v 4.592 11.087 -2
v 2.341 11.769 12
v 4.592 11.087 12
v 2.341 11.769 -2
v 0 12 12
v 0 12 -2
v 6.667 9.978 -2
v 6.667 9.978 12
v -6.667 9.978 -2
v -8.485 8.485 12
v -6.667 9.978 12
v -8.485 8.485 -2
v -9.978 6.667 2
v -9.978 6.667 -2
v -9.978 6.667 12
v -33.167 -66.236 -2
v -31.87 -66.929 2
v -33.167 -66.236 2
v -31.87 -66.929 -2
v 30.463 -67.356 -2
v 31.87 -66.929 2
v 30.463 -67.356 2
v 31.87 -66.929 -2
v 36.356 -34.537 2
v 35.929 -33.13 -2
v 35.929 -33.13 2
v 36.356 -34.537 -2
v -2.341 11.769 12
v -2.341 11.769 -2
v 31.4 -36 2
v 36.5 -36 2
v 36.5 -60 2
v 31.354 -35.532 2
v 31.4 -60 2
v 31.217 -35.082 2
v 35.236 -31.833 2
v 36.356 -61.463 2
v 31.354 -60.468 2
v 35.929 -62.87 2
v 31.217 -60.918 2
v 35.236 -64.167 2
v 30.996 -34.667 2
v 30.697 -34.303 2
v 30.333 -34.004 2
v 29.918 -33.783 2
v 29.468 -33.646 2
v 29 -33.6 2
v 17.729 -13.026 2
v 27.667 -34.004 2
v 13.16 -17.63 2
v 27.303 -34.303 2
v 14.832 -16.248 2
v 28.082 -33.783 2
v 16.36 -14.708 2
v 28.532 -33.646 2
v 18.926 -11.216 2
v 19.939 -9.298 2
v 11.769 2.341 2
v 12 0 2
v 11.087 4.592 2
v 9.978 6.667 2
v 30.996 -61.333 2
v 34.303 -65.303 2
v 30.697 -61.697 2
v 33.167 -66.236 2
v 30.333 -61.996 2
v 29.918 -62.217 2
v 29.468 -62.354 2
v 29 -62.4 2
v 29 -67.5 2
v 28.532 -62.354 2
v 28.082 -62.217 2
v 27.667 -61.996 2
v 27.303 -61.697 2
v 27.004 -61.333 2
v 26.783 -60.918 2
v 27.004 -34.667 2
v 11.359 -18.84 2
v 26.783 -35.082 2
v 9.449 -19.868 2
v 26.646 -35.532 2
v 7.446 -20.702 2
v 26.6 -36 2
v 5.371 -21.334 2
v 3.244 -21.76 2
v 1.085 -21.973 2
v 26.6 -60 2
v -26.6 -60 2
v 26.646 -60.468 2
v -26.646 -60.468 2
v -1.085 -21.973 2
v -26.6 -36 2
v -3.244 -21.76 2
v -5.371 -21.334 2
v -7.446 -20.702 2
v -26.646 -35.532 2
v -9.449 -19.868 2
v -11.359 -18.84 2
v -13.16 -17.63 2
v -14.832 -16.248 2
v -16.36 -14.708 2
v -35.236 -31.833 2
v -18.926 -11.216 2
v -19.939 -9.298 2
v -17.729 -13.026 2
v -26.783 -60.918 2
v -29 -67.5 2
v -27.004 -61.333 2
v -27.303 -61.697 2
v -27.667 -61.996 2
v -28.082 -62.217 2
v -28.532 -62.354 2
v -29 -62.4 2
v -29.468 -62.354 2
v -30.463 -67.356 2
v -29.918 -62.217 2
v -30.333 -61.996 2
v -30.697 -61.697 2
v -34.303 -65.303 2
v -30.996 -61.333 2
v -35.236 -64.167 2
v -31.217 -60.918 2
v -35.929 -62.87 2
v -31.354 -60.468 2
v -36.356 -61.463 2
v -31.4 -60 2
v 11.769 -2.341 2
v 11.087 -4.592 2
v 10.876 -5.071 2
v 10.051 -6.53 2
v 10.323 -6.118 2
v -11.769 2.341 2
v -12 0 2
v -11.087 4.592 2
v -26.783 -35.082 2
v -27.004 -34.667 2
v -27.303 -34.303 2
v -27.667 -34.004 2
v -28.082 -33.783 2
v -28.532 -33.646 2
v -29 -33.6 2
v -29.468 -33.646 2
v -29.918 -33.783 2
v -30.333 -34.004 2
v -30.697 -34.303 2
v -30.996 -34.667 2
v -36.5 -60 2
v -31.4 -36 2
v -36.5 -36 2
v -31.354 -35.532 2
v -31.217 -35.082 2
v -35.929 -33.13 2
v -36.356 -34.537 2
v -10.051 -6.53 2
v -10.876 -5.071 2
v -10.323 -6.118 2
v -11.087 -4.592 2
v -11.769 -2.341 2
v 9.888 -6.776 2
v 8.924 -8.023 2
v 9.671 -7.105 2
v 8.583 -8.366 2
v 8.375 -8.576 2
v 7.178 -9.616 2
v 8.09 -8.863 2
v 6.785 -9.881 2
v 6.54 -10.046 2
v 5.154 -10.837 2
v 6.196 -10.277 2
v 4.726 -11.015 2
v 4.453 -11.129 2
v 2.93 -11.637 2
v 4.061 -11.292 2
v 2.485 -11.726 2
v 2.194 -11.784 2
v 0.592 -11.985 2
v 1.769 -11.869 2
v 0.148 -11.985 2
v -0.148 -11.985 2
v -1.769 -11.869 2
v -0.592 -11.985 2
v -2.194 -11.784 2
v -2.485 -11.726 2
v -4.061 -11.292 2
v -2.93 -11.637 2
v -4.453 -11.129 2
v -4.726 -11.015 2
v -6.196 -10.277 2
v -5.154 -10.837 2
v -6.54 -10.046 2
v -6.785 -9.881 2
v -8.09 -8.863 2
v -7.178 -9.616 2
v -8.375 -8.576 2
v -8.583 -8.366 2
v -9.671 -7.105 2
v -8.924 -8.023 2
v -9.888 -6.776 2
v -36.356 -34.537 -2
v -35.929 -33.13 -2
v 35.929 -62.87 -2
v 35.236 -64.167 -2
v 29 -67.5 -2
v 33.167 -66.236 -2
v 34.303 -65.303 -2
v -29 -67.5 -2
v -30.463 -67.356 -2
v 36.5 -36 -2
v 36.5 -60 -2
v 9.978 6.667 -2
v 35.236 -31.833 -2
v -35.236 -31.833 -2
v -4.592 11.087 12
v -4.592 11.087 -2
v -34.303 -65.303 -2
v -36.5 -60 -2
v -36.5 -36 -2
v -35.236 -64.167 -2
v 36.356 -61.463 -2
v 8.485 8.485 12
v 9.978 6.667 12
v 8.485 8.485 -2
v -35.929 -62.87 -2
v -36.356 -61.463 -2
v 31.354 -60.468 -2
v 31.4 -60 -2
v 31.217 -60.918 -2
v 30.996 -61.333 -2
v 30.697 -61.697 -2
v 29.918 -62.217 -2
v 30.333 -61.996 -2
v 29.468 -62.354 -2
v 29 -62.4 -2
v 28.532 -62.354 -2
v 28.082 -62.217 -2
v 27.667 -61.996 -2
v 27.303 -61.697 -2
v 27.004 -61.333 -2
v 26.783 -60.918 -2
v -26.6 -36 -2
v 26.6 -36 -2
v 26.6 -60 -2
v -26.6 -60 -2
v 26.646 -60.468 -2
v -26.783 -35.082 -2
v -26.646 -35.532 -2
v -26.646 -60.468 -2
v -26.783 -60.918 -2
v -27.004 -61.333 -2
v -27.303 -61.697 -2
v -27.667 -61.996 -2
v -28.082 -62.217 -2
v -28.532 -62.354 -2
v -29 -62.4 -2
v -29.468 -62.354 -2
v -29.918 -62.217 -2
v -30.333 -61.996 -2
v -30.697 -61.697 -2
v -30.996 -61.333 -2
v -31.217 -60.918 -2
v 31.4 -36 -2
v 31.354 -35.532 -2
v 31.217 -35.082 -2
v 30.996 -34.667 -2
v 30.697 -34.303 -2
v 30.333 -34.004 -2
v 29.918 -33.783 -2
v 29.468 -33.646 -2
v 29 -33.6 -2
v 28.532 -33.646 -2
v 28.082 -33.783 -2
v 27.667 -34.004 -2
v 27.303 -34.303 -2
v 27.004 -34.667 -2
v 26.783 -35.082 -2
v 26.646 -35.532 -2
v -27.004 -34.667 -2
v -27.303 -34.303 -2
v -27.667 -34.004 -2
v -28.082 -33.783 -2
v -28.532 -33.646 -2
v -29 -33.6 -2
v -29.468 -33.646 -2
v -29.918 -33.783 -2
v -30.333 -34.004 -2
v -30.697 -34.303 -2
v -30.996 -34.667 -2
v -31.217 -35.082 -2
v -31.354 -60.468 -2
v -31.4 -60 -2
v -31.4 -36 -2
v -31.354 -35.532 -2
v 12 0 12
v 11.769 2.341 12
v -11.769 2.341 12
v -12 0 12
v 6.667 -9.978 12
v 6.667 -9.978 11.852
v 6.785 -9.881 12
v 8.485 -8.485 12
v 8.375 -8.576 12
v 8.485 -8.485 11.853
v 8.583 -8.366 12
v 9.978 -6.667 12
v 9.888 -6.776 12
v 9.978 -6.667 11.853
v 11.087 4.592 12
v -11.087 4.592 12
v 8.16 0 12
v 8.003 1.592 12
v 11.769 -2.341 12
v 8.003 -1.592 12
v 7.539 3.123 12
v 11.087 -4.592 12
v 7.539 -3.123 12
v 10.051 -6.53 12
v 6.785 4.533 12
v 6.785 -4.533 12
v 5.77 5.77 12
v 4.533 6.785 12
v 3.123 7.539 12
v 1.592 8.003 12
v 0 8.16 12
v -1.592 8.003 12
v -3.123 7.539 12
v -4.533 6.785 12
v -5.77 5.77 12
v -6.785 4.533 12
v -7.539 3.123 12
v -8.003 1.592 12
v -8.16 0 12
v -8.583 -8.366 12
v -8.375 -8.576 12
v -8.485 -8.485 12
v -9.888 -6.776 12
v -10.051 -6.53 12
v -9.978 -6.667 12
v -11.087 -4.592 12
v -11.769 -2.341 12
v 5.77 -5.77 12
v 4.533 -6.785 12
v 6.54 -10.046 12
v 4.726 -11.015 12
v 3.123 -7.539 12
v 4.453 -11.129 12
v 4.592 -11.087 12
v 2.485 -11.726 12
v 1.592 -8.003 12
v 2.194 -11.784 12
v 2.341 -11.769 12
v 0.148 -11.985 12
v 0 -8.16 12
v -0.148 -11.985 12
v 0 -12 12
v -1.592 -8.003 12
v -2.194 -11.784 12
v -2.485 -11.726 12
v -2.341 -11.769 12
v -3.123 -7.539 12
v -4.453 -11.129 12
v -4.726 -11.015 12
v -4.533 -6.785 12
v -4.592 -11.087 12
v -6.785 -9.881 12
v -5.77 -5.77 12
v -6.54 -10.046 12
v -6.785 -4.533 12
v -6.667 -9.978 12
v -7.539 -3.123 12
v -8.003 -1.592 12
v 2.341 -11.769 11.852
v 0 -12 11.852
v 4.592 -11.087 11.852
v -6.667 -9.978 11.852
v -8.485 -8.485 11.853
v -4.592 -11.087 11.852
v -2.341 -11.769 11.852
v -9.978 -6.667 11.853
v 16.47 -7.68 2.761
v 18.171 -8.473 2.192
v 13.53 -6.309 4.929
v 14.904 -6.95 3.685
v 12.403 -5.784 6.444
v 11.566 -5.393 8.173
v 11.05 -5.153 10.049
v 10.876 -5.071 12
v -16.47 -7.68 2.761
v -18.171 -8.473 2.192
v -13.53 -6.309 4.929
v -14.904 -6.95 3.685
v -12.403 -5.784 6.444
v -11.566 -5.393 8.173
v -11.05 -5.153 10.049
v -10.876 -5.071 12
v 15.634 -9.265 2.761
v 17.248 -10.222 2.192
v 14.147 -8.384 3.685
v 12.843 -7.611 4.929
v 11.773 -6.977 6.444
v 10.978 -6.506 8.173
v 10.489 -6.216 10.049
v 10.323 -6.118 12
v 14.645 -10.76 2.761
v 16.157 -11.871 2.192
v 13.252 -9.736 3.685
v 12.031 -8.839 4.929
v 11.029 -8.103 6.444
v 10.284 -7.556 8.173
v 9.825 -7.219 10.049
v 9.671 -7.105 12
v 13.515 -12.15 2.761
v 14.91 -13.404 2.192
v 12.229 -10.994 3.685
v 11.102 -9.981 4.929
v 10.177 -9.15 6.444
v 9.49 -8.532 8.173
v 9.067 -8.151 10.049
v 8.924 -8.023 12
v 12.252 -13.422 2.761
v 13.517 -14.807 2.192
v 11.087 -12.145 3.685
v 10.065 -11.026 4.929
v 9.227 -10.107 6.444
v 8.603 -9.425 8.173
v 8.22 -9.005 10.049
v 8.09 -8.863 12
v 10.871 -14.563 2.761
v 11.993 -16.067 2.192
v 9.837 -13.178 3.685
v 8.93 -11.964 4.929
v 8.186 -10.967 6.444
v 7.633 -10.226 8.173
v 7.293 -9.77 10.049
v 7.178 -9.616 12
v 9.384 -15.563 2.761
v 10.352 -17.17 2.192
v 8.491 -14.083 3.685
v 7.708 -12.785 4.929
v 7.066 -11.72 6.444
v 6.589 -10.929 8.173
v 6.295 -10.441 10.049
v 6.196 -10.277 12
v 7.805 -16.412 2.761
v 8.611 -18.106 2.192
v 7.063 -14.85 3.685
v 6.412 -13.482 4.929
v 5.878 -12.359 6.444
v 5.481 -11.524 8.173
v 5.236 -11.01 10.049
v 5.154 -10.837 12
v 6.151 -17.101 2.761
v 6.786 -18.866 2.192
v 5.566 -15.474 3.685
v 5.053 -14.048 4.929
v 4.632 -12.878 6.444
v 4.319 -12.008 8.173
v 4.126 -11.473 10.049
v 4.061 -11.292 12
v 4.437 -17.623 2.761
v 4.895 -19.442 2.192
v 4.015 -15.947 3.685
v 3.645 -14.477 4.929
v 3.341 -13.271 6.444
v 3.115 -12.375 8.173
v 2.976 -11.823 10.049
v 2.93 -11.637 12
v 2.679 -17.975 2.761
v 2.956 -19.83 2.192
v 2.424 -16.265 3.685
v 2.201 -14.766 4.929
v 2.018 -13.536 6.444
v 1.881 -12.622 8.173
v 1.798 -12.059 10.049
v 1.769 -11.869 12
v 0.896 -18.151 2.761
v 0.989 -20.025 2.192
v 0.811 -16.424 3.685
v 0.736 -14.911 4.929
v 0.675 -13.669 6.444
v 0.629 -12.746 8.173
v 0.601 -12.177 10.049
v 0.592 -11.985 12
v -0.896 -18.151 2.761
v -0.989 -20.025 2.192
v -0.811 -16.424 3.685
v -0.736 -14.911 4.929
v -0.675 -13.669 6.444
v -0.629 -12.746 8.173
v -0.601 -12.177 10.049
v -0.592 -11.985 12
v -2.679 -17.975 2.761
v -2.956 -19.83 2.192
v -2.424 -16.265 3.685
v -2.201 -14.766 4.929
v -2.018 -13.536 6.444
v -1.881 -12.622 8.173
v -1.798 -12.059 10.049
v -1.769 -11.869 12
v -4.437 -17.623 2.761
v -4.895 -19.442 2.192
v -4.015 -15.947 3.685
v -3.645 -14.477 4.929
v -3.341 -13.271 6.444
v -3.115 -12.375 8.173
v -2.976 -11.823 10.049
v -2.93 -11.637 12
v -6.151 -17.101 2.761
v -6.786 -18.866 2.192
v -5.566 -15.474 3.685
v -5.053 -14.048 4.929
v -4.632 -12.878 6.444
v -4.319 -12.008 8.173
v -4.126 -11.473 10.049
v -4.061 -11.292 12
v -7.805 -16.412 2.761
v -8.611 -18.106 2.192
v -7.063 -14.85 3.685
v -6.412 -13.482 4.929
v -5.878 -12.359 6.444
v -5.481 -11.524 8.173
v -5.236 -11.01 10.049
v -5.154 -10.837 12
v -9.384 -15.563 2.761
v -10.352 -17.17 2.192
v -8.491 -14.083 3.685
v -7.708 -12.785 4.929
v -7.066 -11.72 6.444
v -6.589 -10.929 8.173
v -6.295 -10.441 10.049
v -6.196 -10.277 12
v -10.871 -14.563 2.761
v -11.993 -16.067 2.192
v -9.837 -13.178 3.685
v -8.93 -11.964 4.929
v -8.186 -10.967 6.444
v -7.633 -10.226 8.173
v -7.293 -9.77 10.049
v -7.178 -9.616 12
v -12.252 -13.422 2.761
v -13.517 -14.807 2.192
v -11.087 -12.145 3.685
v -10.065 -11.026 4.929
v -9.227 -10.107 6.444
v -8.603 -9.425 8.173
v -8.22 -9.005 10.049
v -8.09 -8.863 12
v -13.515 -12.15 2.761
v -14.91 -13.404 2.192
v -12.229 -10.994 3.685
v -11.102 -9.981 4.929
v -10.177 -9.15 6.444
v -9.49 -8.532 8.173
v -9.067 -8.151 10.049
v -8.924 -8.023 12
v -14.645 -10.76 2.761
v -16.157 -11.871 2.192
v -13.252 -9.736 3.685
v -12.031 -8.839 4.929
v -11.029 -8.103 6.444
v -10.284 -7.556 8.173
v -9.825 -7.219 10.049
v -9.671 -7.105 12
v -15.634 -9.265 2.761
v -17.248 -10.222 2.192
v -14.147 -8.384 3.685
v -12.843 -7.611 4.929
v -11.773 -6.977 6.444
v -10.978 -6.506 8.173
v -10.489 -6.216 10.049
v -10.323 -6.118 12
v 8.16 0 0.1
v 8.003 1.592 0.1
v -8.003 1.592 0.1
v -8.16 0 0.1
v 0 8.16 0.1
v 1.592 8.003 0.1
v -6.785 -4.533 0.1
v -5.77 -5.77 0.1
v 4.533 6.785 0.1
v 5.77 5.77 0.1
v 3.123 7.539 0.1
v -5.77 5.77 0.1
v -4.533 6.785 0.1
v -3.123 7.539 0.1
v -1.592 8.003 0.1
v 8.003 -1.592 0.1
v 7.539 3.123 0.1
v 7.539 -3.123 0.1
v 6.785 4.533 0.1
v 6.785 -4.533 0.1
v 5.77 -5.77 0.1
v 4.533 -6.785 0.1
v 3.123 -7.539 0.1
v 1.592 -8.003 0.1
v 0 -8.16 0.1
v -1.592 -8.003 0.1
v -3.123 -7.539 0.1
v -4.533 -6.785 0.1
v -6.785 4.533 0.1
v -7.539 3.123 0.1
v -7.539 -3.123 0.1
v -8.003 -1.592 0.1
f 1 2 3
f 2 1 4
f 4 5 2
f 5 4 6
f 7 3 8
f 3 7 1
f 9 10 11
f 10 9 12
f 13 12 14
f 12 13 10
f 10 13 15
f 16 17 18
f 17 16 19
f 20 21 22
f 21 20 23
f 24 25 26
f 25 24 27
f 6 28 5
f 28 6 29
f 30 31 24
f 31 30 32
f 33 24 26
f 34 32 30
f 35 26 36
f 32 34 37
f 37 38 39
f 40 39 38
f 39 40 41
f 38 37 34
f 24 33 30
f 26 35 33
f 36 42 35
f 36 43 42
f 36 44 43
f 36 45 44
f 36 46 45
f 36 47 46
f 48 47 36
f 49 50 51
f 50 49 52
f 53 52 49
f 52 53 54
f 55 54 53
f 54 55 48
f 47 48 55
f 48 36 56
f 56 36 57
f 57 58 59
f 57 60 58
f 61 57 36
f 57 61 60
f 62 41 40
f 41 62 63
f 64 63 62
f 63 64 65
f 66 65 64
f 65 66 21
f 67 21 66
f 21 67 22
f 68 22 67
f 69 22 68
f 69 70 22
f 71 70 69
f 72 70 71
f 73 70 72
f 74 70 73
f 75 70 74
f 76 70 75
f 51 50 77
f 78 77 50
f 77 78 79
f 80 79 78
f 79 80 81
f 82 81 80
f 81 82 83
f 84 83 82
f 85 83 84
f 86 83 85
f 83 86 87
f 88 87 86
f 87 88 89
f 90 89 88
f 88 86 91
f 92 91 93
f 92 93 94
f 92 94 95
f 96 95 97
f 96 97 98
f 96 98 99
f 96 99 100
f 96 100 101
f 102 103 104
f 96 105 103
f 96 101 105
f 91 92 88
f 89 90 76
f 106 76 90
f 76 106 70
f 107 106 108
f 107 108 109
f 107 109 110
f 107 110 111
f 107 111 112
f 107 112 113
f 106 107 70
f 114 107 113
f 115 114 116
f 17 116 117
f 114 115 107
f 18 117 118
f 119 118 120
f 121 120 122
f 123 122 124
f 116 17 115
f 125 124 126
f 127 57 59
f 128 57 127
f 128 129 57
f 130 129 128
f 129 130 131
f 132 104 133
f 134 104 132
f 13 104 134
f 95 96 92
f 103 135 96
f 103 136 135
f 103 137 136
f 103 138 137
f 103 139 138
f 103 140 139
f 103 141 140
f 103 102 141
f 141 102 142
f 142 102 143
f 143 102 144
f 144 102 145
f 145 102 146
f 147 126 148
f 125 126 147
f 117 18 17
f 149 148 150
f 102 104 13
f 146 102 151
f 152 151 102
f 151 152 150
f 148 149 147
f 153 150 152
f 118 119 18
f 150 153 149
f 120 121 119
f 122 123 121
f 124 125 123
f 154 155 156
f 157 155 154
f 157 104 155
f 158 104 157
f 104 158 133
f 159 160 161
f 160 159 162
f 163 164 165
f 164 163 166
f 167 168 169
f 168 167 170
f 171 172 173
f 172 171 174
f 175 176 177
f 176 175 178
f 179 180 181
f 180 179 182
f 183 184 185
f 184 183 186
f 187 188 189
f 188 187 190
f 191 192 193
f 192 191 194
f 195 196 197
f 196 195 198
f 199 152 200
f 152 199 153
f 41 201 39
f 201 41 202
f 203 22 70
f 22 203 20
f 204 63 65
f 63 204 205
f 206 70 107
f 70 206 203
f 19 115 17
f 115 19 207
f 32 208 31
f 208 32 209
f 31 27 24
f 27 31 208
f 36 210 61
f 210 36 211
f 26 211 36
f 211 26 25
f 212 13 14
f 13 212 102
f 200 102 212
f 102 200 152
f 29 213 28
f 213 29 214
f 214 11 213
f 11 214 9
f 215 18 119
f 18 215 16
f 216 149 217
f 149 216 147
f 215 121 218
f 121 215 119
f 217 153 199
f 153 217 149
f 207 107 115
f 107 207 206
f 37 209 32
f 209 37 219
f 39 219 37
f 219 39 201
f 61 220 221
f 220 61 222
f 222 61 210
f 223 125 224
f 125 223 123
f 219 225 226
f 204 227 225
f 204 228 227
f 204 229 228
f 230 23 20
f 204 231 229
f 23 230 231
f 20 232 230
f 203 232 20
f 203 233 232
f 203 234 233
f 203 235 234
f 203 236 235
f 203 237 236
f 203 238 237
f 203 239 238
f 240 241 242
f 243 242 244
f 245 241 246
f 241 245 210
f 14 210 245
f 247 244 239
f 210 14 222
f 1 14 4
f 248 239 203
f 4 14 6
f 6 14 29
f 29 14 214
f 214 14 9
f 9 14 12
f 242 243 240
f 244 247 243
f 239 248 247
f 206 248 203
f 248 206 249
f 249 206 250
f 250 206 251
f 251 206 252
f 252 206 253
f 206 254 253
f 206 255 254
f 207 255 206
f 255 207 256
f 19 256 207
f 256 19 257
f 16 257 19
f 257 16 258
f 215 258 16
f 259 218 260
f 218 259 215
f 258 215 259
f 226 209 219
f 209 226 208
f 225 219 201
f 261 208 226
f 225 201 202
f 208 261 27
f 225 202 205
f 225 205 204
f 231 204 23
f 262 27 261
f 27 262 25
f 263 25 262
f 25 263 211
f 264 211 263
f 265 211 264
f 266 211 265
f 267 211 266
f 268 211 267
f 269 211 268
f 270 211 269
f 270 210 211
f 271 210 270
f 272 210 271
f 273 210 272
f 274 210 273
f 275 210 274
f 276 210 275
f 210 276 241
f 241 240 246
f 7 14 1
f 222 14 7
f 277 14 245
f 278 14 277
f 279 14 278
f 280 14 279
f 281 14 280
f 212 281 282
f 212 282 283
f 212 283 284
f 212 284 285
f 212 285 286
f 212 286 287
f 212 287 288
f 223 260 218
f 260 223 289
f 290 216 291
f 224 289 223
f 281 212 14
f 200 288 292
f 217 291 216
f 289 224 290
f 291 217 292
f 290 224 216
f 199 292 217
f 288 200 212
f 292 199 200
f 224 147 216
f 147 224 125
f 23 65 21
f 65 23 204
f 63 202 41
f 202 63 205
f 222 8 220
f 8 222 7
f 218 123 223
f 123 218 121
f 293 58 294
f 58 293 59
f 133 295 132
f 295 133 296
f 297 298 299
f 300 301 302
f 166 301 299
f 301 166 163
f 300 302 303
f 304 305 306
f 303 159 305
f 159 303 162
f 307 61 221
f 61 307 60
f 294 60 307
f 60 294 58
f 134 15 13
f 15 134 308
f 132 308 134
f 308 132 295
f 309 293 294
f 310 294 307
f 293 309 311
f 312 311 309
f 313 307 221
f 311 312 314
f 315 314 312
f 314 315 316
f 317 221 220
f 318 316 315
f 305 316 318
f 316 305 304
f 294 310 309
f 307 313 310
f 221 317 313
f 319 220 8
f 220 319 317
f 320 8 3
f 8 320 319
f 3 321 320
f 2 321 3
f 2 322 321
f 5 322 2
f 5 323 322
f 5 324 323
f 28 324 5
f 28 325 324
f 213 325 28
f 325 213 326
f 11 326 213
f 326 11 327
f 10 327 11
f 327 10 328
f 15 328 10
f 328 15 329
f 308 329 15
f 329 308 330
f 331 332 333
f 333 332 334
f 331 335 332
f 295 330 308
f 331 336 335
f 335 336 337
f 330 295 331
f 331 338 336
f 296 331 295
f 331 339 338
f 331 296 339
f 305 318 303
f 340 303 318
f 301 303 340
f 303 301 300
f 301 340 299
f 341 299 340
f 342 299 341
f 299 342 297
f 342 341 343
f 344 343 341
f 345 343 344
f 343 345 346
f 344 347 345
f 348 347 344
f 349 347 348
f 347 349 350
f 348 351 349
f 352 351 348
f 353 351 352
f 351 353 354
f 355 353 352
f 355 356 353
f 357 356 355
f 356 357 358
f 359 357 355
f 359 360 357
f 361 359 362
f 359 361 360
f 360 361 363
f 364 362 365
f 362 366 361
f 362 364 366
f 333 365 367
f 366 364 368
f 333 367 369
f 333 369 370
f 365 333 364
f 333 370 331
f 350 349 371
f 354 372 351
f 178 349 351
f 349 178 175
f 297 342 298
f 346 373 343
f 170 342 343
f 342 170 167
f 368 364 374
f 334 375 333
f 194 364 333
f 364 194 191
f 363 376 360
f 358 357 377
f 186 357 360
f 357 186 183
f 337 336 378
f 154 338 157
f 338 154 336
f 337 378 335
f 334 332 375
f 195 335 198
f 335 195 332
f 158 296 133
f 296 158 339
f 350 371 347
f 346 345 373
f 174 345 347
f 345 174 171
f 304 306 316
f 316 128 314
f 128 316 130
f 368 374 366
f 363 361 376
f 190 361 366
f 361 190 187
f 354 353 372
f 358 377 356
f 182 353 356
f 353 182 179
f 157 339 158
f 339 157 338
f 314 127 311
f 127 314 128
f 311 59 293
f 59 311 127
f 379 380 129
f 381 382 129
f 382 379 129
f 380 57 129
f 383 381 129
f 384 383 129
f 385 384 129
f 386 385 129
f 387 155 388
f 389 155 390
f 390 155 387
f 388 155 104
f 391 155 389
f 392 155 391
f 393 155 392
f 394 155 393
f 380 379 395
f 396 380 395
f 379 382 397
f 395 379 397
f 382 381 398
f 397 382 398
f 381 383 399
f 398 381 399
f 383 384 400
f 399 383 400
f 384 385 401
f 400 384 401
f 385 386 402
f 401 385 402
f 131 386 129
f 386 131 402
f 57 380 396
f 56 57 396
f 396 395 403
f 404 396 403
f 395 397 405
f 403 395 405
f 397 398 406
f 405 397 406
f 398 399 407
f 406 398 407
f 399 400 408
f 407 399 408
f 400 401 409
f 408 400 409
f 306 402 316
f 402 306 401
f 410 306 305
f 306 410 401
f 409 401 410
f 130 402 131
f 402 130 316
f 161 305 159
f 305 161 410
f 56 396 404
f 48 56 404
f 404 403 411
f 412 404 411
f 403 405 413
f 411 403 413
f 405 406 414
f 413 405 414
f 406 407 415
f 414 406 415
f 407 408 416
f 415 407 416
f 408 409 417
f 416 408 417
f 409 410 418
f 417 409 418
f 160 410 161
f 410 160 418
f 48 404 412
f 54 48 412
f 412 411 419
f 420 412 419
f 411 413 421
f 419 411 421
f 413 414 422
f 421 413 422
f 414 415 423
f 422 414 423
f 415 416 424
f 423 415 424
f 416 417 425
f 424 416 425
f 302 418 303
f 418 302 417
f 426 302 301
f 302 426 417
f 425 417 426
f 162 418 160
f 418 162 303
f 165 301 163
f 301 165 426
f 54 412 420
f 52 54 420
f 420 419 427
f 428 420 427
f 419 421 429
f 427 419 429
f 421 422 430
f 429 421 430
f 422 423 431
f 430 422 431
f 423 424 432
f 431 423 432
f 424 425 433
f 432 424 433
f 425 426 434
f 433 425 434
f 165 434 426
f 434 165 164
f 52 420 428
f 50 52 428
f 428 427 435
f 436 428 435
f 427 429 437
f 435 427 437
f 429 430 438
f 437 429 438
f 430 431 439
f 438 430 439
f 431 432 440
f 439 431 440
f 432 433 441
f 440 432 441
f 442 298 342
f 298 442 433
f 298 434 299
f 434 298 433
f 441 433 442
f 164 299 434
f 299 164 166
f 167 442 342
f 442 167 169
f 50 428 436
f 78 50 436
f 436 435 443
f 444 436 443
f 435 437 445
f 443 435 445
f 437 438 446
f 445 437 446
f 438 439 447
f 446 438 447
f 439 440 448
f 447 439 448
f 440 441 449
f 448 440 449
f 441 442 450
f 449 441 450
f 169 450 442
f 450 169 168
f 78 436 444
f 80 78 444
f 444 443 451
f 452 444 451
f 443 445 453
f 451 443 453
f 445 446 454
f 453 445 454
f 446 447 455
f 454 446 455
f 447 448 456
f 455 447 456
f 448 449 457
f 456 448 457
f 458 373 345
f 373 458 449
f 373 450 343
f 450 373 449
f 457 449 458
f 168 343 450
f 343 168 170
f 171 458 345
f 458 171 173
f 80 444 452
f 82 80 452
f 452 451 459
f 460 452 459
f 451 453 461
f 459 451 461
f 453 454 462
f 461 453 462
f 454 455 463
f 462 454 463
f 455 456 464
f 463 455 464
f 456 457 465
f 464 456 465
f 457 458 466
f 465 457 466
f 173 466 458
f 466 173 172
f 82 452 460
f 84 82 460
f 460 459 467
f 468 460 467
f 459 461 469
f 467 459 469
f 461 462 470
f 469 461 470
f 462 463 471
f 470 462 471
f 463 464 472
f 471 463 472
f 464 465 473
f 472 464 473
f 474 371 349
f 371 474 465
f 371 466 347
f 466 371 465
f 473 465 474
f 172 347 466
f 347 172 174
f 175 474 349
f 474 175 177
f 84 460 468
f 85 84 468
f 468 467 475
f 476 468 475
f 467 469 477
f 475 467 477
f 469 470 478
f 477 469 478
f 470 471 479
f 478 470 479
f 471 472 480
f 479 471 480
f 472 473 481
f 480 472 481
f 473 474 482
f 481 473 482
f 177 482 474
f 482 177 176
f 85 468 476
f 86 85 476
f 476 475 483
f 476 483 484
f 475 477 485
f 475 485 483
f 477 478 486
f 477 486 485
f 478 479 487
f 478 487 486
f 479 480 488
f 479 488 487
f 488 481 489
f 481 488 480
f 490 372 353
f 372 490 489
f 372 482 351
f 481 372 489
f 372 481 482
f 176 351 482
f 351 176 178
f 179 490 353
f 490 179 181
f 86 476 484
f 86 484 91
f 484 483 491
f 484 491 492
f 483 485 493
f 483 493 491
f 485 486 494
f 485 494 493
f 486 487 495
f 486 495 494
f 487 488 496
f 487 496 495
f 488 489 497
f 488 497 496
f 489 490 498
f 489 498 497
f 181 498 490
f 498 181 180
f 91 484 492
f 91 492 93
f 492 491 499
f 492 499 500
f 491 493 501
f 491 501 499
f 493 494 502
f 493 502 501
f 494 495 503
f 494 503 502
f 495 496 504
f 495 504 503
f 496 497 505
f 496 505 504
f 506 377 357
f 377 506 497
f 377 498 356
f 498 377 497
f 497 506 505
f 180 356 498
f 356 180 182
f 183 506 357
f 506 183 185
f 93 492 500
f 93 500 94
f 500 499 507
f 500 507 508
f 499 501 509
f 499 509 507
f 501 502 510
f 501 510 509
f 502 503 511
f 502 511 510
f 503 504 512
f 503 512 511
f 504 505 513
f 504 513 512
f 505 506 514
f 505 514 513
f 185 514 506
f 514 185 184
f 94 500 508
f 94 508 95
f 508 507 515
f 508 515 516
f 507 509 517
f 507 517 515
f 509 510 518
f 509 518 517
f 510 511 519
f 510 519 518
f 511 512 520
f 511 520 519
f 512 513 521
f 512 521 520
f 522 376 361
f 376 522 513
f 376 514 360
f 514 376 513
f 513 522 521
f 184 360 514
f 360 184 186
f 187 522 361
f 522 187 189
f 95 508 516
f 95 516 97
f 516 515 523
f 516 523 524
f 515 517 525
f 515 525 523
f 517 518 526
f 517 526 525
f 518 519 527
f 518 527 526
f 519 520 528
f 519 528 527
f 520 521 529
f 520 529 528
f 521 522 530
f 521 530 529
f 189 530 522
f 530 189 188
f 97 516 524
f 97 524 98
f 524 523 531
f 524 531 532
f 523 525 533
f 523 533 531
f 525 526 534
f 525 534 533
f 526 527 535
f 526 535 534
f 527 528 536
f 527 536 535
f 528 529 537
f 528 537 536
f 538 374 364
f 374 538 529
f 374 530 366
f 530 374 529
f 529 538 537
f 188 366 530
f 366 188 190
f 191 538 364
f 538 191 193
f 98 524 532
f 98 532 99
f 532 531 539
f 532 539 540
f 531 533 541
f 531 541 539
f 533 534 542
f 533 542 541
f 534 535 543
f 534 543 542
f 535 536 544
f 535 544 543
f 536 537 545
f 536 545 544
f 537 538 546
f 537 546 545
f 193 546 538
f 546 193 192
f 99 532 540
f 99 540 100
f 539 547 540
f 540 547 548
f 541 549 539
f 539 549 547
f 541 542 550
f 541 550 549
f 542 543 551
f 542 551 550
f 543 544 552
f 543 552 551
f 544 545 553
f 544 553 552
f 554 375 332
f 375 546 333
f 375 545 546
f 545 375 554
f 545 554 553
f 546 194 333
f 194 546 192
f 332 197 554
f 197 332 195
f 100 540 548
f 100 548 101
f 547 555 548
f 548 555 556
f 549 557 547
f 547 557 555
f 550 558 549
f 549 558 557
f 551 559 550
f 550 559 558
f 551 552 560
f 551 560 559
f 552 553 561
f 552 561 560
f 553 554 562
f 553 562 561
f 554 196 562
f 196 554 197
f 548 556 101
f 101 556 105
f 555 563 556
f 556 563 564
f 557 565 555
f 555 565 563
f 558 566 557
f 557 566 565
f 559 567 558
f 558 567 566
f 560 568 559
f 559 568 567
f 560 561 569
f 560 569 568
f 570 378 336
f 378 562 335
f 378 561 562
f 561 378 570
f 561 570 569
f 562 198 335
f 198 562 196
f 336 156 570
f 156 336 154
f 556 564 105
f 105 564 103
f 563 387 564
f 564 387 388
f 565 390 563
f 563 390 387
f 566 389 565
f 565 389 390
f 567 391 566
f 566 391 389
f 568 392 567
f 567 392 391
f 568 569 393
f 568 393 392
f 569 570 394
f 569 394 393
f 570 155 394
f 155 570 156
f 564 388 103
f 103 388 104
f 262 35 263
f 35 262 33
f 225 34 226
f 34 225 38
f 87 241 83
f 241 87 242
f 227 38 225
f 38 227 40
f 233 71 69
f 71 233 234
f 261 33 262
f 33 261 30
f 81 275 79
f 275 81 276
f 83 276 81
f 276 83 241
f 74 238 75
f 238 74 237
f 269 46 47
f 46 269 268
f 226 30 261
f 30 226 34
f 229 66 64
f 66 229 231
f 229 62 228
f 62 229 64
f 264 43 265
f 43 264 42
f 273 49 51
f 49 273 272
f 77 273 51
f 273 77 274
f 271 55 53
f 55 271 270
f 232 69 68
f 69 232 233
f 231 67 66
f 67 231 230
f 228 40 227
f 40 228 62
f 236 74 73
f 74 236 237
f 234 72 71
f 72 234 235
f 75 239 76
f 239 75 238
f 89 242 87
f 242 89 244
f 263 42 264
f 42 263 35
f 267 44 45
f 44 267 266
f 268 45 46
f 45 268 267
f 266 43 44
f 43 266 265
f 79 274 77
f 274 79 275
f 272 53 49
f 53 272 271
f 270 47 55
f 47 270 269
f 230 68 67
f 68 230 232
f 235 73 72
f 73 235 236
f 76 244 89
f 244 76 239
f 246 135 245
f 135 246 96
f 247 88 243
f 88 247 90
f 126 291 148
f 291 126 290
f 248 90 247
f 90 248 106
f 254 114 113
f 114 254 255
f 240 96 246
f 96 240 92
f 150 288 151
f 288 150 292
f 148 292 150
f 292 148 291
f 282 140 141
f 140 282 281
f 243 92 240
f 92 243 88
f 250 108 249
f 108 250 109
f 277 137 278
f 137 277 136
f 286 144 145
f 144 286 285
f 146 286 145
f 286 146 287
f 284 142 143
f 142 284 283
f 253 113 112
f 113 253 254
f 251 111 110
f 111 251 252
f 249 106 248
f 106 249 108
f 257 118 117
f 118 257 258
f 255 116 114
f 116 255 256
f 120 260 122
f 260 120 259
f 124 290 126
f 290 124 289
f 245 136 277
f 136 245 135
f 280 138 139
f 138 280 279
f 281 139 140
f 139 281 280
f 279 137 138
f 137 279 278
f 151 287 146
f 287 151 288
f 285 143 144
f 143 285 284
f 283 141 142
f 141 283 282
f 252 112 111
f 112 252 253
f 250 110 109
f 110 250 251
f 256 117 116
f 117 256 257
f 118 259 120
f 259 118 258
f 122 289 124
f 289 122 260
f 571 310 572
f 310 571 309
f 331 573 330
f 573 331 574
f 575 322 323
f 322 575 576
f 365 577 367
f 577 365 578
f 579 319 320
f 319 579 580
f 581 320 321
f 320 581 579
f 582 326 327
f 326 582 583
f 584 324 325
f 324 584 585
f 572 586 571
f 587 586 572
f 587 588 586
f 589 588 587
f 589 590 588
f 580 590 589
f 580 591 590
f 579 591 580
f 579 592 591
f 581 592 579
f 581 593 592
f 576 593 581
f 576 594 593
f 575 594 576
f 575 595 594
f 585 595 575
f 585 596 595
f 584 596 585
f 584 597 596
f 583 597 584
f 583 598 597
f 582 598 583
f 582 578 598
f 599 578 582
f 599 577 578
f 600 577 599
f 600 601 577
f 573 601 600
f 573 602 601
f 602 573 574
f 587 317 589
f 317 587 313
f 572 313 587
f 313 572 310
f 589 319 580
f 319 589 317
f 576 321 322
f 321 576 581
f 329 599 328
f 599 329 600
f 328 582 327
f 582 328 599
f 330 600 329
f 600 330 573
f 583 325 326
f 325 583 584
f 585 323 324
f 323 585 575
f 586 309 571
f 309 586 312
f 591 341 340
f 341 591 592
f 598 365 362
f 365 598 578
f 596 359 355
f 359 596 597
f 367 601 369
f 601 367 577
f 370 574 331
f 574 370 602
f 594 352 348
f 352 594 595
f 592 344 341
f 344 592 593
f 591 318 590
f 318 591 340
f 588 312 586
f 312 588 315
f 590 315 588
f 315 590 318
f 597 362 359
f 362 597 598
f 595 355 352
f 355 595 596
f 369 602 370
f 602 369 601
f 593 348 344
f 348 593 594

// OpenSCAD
// file: ../shared/Tooth Profile.scad
//Simple Trapezoid Tooth Profile - used by Belt - don't print
use <Chamfer-Fillet-Machine.scad>
pressure_angle = 14.5;//degrees
tooth_pitch = 16;//mm
half_tooth_pitch = tooth_pitch/2;
root_fillet_radius = 2;//mm
tooth_height = 5;//mm

function tooth_points(
    pressure_angle=14.5,
    tooth_pitch=16,
    root_fillet_radius=2,
    tooth_height=12,
    descent=0.1) = 
    let(
        //half pitch
        half_tooth_pitch = tooth_pitch/2,
        
        //find the tangent contact points
        x_fact = cos(pressure_angle),
        y_fact = sin(pressure_angle),
        
        //find the x and y distance from circle centre
        dx_radial = x_fact * root_fillet_radius,
        dy_radial = y_fact * root_fillet_radius,

        //find the tangent coordinates
        x_tang = -half_tooth_pitch + dx_radial,
        y_tang = root_fillet_radius - dy_radial,

        //find gradient of the radial
        radial_gradient = -dy_radial / dx_radial,

        //find gradient of tangent
        tangent_gradient = -1 / radial_gradient,

        //calculate intersection point on baseline (y = 0)
        x_base_disp = y_tang / tangent_gradient,
        x_base = x_tang - x_base_disp,

        //calculate intersection point on top (y = height)
        y_top_disp = (tooth_height - y_tang),
        x_top_disp = y_top_disp / tangent_gradient,
        x_top = x_tang + x_top_disp,
        pts = [
            //[0, -descent, 0],
            [-(half_tooth_pitch + root_fillet_radius), -descent, 0],
            [-(half_tooth_pitch + root_fillet_radius), 0, 0],
            [x_base, 0, root_fillet_radius],
            [x_top, tooth_height, 1],
            [-x_top, tooth_height, 1],
            [-x_base, 0, root_fillet_radius],
            [half_tooth_pitch + root_fillet_radius, 0, 0],
            [half_tooth_pitch + root_fillet_radius, -descent, 0],
            [-(half_tooth_pitch + root_fillet_radius), -descent, 0]
            //[0, -descent, 0]
        ]
    ) pts;

module tooth_pitch_debug(
    pressure_angle=14.5,
    tooth_pitch=16,
    root_fillet_radius=2,
    tooth_height=12) {

    //draw 2 circles to represent the root fillets, and space them apart by the pitch
    translate([-tooth_pitch/2, root_fillet_radius]) circle(root_fillet_radius, $fn=32);
    translate([tooth_pitch/2, root_fillet_radius]) circle(root_fillet_radius, $fn=32);

    //simulate a zero degree pressure angle
    %translate([0, tooth_height/2]) square([tooth_pitch - (2 * root_fillet_radius), tooth_height], center=true);

    //find the tangent contact points
    x_fact = cos(pressure_angle);
    y_fact = sin(pressure_angle);
    echo("x_fact: ", x_fact, "y_fact: ", y_fact);
    //find the x and y distance from circle centre
    dx_radial = x_fact * root_fillet_radius;
    dy_radial = y_fact * root_fillet_radius;
    echo("dx_radial: ", dx_radial, "dy_radial: ", dy_radial);

    x_tang = -half_tooth_pitch + dx_radial;
    y_tang = root_fillet_radius - dy_radial;
    echo("x_tang: ", x_tang, "y_tang: ", y_tang);

    //annotate tangent contact points
    color("black", 0.25) translate([x_tang, y_tang]) circle(0.5, $fn=32);
    color("black", 0.25) translate([-x_tang, y_tang]) circle(0.5, $fn=32);

    //annotate radial
    color("blue") translate([-half_tooth_pitch, root_fillet_radius]) vector_arrow([dx_radial, -dy_radial]);

    //find gradient of the radial
    radial_gradient = -dy_radial / dx_radial;
    echo("radial_gradient: ", radial_gradient);

    //find gradient of tangent
    tangent_gradient = -1 / radial_gradient;
    echo("tangent_gradient: ", tangent_gradient);

    //calculate intersection point on baseline (y = 0)
    x_base_disp = y_tang / tangent_gradient;
    x_base = x_tang - x_base_disp;
    echo("x_base_disp: ", x_base_disp, "x_base: ", x_base);

    //annotate triangle
    color("yellow", 0.25) polygon([
        [x_tang, y_tang],
        [x_tang, 0],
        [x_base, 0]
    ]);

    //annotate base contact points
    color("black", 0.25) translate([x_base, 0]) circle(0.5, $fn=32);

    //create tangent line vector
    Vtang = [dy_radial, dx_radial];
    Vtangex = extend_vect(Vtang, 20);
    echo("Vtang: ", Vtang);

    //annotate tangents
    color("red") translate([x_base, 0]) vector_line(Vtangex);

    //label pressure angle
    color("black") translate([-half_tooth_pitch, tooth_height + 1]) text(str("Pressure Angle: ", pressure_angle, " degrees"), size=0.5);

    //calculate intersection point on top (y = height)
    y_top_disp = (tooth_height - y_tang);
    x_top_disp = y_top_disp / tangent_gradient;
    echo("y_top_disp: ", y_top_disp, "x_top_disp: ", x_top_disp);
    x_top = x_tang + x_top_disp;
    echo("x_top: ", x_top);

    //annotate triangle
    color("yellow", 0.35) polygon([
        [x_tang, y_tang],
        [x_tang, tooth_height],
        [x_top, tooth_height]
    ]);

    //annotate top contact points
    color("black", 0.25) translate([x_top, tooth_height]) circle(0.5, $fn=32);
}
*tooth_pitch_debug();
// file: ../shared/Constants.scad
/*
    Constants.scad contains all the global constants
*/
use <Tooth Profile.scad>

//idler hub
idle_bearing_od = 16;//mm
idle_bearing_fit_dia = idle_bearing_od * 1.03;//push-in fit for bearing
idle_bearing_thickness = 5.25;//push-in fit
hub_thickness = 15;
hub_dia = 24;
idle_shaft_hole_dia = 6.5;//clearance for 6mm shaft
scraper_fix_hole_dia = 4.5;//mm
idler_width = 25;//mm
idler_dia = 50;//mm
idler_spacing = 0.5;//mm
radial_spacing = 5;//mm
tube_insertion = 25;//mm
tube_outer_dim = 10;//10mm square tube
tube_dim = sqrt(tube_outer_dim^2 + tube_outer_dim^2) * 1.04;
echo("tube_outer_dim:", tube_outer_dim, "tube_dim:", tube_dim);

//idler wheel
idle_wheel_thickness = 25;
idle_wheel_dia = 50;
idle_shaft_dia = 6.25;//mm
tooth_space_thickness = 11;//mm
tooth_space_dia = 35;//mm
runner_thickness = (idle_wheel_thickness - tooth_space_thickness)/2;
edge_radius = 1;
dee_shaft_offset = 1;
spigot_scale_factor = 1.0;//grow spigot hole if necessary for a tight fit

//idler axle
idle_rod_dia = 5.92;//mm tight fit for bearing
idle_rod_length = 25 + (2 * 0.5) + (2 * 15) + (2 * 2);//mm idler width + 2 spacers + 2 hubs + 2 washers
echo("idle_rod_length", idle_rod_length);
idle_rod_cap_length = 2;//mm
idle_rod_clip_width = 1;//mm
idle_rod_clip_dia = 4.5;//mm

//knurled wheel and locknut
//knob parameters
KNOB_DIAM=25;
//screw parameters
SCREWHEAD_FACETOFACE=0;
SCREWHEAD_DEPTH=12;
THRU_HOLE_DIAM=9.5;
//grippy cutouts parameters
NUM_GRIP_CUTOUTS=20;
GRIP_CUTOUT_DIAM=4;
CUTOUT_RADIUS_ADJ=1;
KNURLED_WHEEL_HEIGHT=6;
KNURLED_WHEEL_NUM_TURNS = 3.5;
LOCKNUT_HEIGHT=3;
LOCKNUT_NUM_TURNS = 1.375;

//motor plate
gearbox_collar_hole_dia = 22.2;//mm
motor_plate_thickness = 4;//mm
motor_plate_corner_dia = 15;//mm
plan_motor_dia = 36.3;//mm
plan_shoulder_base_thickness = 3;// mm
plan_shoulder_thickness = 5;// mm
plan_shoulder_height = 20;// mm

//planetary motor bracket
pmb_motor_dia = 36;//mm 35.5 plus clearance
pmb_base_thickness = 3;//mm
pmb_foot_thickness = 5;//mm
pmb_width = 10;//mm
pmb_thickness = 4;//mm
pmb_chamfer_radius = 1;//mm
pmb_fix_hole_dia = 4.5;//mm

//bearing backplate
drive_bearing_bush_dia = 24;//mm
drive_bearing_od = 16;//mm
drive_bearing_fit_dia = drive_bearing_od * 1.02;//push fit for bearing
drive_bearing_recess = 6;//mm 

//drive sprocket
sprocket_spacing = 0.5;//mm
tooth_height = 5;//mm 4 + 1 to sink into cylinder

//tube clamp
clamp_width = 10;//mm
clamp_effect = 0.75;//mm
clamp_int_dia = 0.5;//mm
clamp_ext_dia = 2.5;//mm
clamp_fix_hole_dia = 4.8;//mm
clamp_washer_dia = 13;// for 12.5mm washer
clamp_washer_thickness = 1;//mm

//drive spindle
plan_motor_drive_shaft_dia = 8;//mm
spindle_outer_dia = 20;//mm fn=6 for hex
spindle_length = 25;//mm
spindle_shoulder_dia = 30;//mm
spindle_shoulder_width = 10;//mm
drive_sprocket_shaft_hole_dia = 8.32;//for 8mm shaft
spindle_dee_shaft_offset = 1;//mm
spindle_dee_shaft_dia = plan_motor_drive_shaft_dia * 1.0175;//mm interference fit
spindle_drive_shaft_length = 25;//mm shaft is 17.5 only 14mm of which is D'eed
spindle_bearing_shaft_dia = 9.3;//space for M8 thread
spindle_thread_num_turns = 9;
spindle_thread_x_factor = 1.04;
spindle_thread_y_factor = 1.04;
spindle_thread_z_factor = 1.0;

//drive sprocket shaft
drive_sprocket_shaft_num_turns = 14;
bearing_section_length = 10;//mm
back_bearing_stub_dia = 7.95;//mm for 8mm hole in bearing

//drive sprocket cog
tth_num_teeth = 9;
tth_pitch_angle = 360 / tth_num_teeth;
drive_sprocket_dia = 50;
tooth_depression = 1.1;//to smooth base fillets
sprock_tooth_x_scale = 0.8;//put space between teeth
sprock_tooth_y_scale = 1.05;//
sprock_thickness = 11;//mm for a 7|11|7 sandwich
tth_sprock_press_angle = 5;
tth_tooth_pitch = 8;
tth_root_fillet_radius = 1;
tth_tooth_height = 5;
sprock_tooth_profile_pts = tooth_points(tth_sprock_press_angle, tth_tooth_pitch, tth_root_fillet_radius, tth_tooth_height);

//drive plain cog
plain_cog_dia = 50;
plain_cog_thickness = 7;
plain_cog_rim_thickness = 3;//mm

//just for assembly
wheelbase = 200;//mm horizontal distance between idle wheel centres
track_triangle_height = 60;//mm vertical distance between drive motor and tube centres
// main file
//Bearing BackPlate
include <../shared/Constants.scad>

module back_plate() {
    /*
        generates a plate that accomodates any combination of cartesian/polar holes/slots
        the common origin aligns with the motor shaft
    */

    cart_holes = [
        // x, y, d
        [29, -50, 4.8],     // wheelbase tube mount
        [-29, -50, 4.8]     // wheelbase tube mount
    ];
    
    cart_slots = [
        // x1, y1, x2, y2, d
        [29, -36, 29, -60, 4.8],
        [-29, -36, -29, -60, 4.8]
    ];
    polar_holes = [
        //r, theta, d
    ];

    difference() {
        union() {
            //plate corners
            hull() {
                //bearing housing at origin
                cylinder(h=motor_plate_thickness, d=drive_bearing_bush_dia, $fn=32, center=true);
                //cartesian holes
                for (i=[0:1:len(cart_holes)-1]) {
                    translate([cart_holes[i][0], cart_holes[i][1], 0]) cylinder(h=motor_plate_thickness, d=motor_plate_corner_dia, $fn=32, center=true);
                }
                //cartesian slots
                for (i=[0:1:len(cart_slots)-1]) {
                    translate([cart_slots[i][0], cart_slots[i][1], 0]) cylinder(h=motor_plate_thickness, d=motor_plate_corner_dia, $fn=32, center=true);
                    translate([cart_slots[i][2], cart_slots[i][3], 0]) cylinder(h=motor_plate_thickness, d=motor_plate_corner_dia, $fn=32, center=true);
                }
                //polar holes
                for (i=[0:1:len(polar_holes)-1]) {
                    rotate([0, 0, -polar_holes[i][1]]) translate([polar_holes[i][0], 0, 0]) cylinder(h=motor_plate_thickness, d=motor_plate_corner_dia, $fn=32, center=true);
                }            
            }//end hull
            //bearing bush
            translate([0, 0, drive_bearing_recess]) cylinder(h=drive_bearing_recess * 2, d=drive_bearing_bush_dia, $fn=32, center=true);
            //bearing bush fillet
            translate([0, 0, motor_plate_thickness/2]) circular_fillet(extent=10, dia=drive_bearing_bush_dia, angle=130);
        }//end union
            
        //cartesian holes
        for (i=[0:1:len(cart_holes)-1]) {
            translate([cart_holes[i][0], cart_holes[i][1], 0]) cylinder(h=motor_plate_thickness * 16, d=cart_holes[i][2], $fn=32, center=true);
        }
        
        //cartesian slots
        for (i=[0:1:len(cart_slots)-1]) {
            hull() {
                translate([cart_slots[i][0], cart_slots[i][1], 0]) cylinder(h=motor_plate_thickness * 2, d=cart_slots[i][4], $fn=32, center=true);
                translate([cart_slots[i][2], cart_slots[i][3], 0]) cylinder(h=motor_plate_thickness * 2, d=cart_slots[i][4], $fn=32, center=true);
            }
        }
        //polar holes
        for (i=[0:1:len(polar_holes)-1]) {
            rotate([0, 0, -polar_holes[i][1]]) translate([polar_holes[i][0], 0, 0]) cylinder(h=motor_plate_thickness * 2, d=polar_holes[i][2], $fn=32, center=true);
        }
        //bearing recess
        translate([0, 0, drive_bearing_recess + 0.1]) cylinder(h=drive_bearing_recess * 2, d=drive_bearing_fit_dia, $fn=32, center=true);
    }    
}

module circular_fillet(extent=10, dia=10, angle=360) {
    rotate([0, 0, -(90 - (angle/2))]) rotate_extrude(angle=-angle, $fn=64) translate([extent + (dia/2), extent]) mirror([1, 1, 0]) difference() {
        square(extent);
        circle(extent, $fn=32);
    }
}
back_plate();
